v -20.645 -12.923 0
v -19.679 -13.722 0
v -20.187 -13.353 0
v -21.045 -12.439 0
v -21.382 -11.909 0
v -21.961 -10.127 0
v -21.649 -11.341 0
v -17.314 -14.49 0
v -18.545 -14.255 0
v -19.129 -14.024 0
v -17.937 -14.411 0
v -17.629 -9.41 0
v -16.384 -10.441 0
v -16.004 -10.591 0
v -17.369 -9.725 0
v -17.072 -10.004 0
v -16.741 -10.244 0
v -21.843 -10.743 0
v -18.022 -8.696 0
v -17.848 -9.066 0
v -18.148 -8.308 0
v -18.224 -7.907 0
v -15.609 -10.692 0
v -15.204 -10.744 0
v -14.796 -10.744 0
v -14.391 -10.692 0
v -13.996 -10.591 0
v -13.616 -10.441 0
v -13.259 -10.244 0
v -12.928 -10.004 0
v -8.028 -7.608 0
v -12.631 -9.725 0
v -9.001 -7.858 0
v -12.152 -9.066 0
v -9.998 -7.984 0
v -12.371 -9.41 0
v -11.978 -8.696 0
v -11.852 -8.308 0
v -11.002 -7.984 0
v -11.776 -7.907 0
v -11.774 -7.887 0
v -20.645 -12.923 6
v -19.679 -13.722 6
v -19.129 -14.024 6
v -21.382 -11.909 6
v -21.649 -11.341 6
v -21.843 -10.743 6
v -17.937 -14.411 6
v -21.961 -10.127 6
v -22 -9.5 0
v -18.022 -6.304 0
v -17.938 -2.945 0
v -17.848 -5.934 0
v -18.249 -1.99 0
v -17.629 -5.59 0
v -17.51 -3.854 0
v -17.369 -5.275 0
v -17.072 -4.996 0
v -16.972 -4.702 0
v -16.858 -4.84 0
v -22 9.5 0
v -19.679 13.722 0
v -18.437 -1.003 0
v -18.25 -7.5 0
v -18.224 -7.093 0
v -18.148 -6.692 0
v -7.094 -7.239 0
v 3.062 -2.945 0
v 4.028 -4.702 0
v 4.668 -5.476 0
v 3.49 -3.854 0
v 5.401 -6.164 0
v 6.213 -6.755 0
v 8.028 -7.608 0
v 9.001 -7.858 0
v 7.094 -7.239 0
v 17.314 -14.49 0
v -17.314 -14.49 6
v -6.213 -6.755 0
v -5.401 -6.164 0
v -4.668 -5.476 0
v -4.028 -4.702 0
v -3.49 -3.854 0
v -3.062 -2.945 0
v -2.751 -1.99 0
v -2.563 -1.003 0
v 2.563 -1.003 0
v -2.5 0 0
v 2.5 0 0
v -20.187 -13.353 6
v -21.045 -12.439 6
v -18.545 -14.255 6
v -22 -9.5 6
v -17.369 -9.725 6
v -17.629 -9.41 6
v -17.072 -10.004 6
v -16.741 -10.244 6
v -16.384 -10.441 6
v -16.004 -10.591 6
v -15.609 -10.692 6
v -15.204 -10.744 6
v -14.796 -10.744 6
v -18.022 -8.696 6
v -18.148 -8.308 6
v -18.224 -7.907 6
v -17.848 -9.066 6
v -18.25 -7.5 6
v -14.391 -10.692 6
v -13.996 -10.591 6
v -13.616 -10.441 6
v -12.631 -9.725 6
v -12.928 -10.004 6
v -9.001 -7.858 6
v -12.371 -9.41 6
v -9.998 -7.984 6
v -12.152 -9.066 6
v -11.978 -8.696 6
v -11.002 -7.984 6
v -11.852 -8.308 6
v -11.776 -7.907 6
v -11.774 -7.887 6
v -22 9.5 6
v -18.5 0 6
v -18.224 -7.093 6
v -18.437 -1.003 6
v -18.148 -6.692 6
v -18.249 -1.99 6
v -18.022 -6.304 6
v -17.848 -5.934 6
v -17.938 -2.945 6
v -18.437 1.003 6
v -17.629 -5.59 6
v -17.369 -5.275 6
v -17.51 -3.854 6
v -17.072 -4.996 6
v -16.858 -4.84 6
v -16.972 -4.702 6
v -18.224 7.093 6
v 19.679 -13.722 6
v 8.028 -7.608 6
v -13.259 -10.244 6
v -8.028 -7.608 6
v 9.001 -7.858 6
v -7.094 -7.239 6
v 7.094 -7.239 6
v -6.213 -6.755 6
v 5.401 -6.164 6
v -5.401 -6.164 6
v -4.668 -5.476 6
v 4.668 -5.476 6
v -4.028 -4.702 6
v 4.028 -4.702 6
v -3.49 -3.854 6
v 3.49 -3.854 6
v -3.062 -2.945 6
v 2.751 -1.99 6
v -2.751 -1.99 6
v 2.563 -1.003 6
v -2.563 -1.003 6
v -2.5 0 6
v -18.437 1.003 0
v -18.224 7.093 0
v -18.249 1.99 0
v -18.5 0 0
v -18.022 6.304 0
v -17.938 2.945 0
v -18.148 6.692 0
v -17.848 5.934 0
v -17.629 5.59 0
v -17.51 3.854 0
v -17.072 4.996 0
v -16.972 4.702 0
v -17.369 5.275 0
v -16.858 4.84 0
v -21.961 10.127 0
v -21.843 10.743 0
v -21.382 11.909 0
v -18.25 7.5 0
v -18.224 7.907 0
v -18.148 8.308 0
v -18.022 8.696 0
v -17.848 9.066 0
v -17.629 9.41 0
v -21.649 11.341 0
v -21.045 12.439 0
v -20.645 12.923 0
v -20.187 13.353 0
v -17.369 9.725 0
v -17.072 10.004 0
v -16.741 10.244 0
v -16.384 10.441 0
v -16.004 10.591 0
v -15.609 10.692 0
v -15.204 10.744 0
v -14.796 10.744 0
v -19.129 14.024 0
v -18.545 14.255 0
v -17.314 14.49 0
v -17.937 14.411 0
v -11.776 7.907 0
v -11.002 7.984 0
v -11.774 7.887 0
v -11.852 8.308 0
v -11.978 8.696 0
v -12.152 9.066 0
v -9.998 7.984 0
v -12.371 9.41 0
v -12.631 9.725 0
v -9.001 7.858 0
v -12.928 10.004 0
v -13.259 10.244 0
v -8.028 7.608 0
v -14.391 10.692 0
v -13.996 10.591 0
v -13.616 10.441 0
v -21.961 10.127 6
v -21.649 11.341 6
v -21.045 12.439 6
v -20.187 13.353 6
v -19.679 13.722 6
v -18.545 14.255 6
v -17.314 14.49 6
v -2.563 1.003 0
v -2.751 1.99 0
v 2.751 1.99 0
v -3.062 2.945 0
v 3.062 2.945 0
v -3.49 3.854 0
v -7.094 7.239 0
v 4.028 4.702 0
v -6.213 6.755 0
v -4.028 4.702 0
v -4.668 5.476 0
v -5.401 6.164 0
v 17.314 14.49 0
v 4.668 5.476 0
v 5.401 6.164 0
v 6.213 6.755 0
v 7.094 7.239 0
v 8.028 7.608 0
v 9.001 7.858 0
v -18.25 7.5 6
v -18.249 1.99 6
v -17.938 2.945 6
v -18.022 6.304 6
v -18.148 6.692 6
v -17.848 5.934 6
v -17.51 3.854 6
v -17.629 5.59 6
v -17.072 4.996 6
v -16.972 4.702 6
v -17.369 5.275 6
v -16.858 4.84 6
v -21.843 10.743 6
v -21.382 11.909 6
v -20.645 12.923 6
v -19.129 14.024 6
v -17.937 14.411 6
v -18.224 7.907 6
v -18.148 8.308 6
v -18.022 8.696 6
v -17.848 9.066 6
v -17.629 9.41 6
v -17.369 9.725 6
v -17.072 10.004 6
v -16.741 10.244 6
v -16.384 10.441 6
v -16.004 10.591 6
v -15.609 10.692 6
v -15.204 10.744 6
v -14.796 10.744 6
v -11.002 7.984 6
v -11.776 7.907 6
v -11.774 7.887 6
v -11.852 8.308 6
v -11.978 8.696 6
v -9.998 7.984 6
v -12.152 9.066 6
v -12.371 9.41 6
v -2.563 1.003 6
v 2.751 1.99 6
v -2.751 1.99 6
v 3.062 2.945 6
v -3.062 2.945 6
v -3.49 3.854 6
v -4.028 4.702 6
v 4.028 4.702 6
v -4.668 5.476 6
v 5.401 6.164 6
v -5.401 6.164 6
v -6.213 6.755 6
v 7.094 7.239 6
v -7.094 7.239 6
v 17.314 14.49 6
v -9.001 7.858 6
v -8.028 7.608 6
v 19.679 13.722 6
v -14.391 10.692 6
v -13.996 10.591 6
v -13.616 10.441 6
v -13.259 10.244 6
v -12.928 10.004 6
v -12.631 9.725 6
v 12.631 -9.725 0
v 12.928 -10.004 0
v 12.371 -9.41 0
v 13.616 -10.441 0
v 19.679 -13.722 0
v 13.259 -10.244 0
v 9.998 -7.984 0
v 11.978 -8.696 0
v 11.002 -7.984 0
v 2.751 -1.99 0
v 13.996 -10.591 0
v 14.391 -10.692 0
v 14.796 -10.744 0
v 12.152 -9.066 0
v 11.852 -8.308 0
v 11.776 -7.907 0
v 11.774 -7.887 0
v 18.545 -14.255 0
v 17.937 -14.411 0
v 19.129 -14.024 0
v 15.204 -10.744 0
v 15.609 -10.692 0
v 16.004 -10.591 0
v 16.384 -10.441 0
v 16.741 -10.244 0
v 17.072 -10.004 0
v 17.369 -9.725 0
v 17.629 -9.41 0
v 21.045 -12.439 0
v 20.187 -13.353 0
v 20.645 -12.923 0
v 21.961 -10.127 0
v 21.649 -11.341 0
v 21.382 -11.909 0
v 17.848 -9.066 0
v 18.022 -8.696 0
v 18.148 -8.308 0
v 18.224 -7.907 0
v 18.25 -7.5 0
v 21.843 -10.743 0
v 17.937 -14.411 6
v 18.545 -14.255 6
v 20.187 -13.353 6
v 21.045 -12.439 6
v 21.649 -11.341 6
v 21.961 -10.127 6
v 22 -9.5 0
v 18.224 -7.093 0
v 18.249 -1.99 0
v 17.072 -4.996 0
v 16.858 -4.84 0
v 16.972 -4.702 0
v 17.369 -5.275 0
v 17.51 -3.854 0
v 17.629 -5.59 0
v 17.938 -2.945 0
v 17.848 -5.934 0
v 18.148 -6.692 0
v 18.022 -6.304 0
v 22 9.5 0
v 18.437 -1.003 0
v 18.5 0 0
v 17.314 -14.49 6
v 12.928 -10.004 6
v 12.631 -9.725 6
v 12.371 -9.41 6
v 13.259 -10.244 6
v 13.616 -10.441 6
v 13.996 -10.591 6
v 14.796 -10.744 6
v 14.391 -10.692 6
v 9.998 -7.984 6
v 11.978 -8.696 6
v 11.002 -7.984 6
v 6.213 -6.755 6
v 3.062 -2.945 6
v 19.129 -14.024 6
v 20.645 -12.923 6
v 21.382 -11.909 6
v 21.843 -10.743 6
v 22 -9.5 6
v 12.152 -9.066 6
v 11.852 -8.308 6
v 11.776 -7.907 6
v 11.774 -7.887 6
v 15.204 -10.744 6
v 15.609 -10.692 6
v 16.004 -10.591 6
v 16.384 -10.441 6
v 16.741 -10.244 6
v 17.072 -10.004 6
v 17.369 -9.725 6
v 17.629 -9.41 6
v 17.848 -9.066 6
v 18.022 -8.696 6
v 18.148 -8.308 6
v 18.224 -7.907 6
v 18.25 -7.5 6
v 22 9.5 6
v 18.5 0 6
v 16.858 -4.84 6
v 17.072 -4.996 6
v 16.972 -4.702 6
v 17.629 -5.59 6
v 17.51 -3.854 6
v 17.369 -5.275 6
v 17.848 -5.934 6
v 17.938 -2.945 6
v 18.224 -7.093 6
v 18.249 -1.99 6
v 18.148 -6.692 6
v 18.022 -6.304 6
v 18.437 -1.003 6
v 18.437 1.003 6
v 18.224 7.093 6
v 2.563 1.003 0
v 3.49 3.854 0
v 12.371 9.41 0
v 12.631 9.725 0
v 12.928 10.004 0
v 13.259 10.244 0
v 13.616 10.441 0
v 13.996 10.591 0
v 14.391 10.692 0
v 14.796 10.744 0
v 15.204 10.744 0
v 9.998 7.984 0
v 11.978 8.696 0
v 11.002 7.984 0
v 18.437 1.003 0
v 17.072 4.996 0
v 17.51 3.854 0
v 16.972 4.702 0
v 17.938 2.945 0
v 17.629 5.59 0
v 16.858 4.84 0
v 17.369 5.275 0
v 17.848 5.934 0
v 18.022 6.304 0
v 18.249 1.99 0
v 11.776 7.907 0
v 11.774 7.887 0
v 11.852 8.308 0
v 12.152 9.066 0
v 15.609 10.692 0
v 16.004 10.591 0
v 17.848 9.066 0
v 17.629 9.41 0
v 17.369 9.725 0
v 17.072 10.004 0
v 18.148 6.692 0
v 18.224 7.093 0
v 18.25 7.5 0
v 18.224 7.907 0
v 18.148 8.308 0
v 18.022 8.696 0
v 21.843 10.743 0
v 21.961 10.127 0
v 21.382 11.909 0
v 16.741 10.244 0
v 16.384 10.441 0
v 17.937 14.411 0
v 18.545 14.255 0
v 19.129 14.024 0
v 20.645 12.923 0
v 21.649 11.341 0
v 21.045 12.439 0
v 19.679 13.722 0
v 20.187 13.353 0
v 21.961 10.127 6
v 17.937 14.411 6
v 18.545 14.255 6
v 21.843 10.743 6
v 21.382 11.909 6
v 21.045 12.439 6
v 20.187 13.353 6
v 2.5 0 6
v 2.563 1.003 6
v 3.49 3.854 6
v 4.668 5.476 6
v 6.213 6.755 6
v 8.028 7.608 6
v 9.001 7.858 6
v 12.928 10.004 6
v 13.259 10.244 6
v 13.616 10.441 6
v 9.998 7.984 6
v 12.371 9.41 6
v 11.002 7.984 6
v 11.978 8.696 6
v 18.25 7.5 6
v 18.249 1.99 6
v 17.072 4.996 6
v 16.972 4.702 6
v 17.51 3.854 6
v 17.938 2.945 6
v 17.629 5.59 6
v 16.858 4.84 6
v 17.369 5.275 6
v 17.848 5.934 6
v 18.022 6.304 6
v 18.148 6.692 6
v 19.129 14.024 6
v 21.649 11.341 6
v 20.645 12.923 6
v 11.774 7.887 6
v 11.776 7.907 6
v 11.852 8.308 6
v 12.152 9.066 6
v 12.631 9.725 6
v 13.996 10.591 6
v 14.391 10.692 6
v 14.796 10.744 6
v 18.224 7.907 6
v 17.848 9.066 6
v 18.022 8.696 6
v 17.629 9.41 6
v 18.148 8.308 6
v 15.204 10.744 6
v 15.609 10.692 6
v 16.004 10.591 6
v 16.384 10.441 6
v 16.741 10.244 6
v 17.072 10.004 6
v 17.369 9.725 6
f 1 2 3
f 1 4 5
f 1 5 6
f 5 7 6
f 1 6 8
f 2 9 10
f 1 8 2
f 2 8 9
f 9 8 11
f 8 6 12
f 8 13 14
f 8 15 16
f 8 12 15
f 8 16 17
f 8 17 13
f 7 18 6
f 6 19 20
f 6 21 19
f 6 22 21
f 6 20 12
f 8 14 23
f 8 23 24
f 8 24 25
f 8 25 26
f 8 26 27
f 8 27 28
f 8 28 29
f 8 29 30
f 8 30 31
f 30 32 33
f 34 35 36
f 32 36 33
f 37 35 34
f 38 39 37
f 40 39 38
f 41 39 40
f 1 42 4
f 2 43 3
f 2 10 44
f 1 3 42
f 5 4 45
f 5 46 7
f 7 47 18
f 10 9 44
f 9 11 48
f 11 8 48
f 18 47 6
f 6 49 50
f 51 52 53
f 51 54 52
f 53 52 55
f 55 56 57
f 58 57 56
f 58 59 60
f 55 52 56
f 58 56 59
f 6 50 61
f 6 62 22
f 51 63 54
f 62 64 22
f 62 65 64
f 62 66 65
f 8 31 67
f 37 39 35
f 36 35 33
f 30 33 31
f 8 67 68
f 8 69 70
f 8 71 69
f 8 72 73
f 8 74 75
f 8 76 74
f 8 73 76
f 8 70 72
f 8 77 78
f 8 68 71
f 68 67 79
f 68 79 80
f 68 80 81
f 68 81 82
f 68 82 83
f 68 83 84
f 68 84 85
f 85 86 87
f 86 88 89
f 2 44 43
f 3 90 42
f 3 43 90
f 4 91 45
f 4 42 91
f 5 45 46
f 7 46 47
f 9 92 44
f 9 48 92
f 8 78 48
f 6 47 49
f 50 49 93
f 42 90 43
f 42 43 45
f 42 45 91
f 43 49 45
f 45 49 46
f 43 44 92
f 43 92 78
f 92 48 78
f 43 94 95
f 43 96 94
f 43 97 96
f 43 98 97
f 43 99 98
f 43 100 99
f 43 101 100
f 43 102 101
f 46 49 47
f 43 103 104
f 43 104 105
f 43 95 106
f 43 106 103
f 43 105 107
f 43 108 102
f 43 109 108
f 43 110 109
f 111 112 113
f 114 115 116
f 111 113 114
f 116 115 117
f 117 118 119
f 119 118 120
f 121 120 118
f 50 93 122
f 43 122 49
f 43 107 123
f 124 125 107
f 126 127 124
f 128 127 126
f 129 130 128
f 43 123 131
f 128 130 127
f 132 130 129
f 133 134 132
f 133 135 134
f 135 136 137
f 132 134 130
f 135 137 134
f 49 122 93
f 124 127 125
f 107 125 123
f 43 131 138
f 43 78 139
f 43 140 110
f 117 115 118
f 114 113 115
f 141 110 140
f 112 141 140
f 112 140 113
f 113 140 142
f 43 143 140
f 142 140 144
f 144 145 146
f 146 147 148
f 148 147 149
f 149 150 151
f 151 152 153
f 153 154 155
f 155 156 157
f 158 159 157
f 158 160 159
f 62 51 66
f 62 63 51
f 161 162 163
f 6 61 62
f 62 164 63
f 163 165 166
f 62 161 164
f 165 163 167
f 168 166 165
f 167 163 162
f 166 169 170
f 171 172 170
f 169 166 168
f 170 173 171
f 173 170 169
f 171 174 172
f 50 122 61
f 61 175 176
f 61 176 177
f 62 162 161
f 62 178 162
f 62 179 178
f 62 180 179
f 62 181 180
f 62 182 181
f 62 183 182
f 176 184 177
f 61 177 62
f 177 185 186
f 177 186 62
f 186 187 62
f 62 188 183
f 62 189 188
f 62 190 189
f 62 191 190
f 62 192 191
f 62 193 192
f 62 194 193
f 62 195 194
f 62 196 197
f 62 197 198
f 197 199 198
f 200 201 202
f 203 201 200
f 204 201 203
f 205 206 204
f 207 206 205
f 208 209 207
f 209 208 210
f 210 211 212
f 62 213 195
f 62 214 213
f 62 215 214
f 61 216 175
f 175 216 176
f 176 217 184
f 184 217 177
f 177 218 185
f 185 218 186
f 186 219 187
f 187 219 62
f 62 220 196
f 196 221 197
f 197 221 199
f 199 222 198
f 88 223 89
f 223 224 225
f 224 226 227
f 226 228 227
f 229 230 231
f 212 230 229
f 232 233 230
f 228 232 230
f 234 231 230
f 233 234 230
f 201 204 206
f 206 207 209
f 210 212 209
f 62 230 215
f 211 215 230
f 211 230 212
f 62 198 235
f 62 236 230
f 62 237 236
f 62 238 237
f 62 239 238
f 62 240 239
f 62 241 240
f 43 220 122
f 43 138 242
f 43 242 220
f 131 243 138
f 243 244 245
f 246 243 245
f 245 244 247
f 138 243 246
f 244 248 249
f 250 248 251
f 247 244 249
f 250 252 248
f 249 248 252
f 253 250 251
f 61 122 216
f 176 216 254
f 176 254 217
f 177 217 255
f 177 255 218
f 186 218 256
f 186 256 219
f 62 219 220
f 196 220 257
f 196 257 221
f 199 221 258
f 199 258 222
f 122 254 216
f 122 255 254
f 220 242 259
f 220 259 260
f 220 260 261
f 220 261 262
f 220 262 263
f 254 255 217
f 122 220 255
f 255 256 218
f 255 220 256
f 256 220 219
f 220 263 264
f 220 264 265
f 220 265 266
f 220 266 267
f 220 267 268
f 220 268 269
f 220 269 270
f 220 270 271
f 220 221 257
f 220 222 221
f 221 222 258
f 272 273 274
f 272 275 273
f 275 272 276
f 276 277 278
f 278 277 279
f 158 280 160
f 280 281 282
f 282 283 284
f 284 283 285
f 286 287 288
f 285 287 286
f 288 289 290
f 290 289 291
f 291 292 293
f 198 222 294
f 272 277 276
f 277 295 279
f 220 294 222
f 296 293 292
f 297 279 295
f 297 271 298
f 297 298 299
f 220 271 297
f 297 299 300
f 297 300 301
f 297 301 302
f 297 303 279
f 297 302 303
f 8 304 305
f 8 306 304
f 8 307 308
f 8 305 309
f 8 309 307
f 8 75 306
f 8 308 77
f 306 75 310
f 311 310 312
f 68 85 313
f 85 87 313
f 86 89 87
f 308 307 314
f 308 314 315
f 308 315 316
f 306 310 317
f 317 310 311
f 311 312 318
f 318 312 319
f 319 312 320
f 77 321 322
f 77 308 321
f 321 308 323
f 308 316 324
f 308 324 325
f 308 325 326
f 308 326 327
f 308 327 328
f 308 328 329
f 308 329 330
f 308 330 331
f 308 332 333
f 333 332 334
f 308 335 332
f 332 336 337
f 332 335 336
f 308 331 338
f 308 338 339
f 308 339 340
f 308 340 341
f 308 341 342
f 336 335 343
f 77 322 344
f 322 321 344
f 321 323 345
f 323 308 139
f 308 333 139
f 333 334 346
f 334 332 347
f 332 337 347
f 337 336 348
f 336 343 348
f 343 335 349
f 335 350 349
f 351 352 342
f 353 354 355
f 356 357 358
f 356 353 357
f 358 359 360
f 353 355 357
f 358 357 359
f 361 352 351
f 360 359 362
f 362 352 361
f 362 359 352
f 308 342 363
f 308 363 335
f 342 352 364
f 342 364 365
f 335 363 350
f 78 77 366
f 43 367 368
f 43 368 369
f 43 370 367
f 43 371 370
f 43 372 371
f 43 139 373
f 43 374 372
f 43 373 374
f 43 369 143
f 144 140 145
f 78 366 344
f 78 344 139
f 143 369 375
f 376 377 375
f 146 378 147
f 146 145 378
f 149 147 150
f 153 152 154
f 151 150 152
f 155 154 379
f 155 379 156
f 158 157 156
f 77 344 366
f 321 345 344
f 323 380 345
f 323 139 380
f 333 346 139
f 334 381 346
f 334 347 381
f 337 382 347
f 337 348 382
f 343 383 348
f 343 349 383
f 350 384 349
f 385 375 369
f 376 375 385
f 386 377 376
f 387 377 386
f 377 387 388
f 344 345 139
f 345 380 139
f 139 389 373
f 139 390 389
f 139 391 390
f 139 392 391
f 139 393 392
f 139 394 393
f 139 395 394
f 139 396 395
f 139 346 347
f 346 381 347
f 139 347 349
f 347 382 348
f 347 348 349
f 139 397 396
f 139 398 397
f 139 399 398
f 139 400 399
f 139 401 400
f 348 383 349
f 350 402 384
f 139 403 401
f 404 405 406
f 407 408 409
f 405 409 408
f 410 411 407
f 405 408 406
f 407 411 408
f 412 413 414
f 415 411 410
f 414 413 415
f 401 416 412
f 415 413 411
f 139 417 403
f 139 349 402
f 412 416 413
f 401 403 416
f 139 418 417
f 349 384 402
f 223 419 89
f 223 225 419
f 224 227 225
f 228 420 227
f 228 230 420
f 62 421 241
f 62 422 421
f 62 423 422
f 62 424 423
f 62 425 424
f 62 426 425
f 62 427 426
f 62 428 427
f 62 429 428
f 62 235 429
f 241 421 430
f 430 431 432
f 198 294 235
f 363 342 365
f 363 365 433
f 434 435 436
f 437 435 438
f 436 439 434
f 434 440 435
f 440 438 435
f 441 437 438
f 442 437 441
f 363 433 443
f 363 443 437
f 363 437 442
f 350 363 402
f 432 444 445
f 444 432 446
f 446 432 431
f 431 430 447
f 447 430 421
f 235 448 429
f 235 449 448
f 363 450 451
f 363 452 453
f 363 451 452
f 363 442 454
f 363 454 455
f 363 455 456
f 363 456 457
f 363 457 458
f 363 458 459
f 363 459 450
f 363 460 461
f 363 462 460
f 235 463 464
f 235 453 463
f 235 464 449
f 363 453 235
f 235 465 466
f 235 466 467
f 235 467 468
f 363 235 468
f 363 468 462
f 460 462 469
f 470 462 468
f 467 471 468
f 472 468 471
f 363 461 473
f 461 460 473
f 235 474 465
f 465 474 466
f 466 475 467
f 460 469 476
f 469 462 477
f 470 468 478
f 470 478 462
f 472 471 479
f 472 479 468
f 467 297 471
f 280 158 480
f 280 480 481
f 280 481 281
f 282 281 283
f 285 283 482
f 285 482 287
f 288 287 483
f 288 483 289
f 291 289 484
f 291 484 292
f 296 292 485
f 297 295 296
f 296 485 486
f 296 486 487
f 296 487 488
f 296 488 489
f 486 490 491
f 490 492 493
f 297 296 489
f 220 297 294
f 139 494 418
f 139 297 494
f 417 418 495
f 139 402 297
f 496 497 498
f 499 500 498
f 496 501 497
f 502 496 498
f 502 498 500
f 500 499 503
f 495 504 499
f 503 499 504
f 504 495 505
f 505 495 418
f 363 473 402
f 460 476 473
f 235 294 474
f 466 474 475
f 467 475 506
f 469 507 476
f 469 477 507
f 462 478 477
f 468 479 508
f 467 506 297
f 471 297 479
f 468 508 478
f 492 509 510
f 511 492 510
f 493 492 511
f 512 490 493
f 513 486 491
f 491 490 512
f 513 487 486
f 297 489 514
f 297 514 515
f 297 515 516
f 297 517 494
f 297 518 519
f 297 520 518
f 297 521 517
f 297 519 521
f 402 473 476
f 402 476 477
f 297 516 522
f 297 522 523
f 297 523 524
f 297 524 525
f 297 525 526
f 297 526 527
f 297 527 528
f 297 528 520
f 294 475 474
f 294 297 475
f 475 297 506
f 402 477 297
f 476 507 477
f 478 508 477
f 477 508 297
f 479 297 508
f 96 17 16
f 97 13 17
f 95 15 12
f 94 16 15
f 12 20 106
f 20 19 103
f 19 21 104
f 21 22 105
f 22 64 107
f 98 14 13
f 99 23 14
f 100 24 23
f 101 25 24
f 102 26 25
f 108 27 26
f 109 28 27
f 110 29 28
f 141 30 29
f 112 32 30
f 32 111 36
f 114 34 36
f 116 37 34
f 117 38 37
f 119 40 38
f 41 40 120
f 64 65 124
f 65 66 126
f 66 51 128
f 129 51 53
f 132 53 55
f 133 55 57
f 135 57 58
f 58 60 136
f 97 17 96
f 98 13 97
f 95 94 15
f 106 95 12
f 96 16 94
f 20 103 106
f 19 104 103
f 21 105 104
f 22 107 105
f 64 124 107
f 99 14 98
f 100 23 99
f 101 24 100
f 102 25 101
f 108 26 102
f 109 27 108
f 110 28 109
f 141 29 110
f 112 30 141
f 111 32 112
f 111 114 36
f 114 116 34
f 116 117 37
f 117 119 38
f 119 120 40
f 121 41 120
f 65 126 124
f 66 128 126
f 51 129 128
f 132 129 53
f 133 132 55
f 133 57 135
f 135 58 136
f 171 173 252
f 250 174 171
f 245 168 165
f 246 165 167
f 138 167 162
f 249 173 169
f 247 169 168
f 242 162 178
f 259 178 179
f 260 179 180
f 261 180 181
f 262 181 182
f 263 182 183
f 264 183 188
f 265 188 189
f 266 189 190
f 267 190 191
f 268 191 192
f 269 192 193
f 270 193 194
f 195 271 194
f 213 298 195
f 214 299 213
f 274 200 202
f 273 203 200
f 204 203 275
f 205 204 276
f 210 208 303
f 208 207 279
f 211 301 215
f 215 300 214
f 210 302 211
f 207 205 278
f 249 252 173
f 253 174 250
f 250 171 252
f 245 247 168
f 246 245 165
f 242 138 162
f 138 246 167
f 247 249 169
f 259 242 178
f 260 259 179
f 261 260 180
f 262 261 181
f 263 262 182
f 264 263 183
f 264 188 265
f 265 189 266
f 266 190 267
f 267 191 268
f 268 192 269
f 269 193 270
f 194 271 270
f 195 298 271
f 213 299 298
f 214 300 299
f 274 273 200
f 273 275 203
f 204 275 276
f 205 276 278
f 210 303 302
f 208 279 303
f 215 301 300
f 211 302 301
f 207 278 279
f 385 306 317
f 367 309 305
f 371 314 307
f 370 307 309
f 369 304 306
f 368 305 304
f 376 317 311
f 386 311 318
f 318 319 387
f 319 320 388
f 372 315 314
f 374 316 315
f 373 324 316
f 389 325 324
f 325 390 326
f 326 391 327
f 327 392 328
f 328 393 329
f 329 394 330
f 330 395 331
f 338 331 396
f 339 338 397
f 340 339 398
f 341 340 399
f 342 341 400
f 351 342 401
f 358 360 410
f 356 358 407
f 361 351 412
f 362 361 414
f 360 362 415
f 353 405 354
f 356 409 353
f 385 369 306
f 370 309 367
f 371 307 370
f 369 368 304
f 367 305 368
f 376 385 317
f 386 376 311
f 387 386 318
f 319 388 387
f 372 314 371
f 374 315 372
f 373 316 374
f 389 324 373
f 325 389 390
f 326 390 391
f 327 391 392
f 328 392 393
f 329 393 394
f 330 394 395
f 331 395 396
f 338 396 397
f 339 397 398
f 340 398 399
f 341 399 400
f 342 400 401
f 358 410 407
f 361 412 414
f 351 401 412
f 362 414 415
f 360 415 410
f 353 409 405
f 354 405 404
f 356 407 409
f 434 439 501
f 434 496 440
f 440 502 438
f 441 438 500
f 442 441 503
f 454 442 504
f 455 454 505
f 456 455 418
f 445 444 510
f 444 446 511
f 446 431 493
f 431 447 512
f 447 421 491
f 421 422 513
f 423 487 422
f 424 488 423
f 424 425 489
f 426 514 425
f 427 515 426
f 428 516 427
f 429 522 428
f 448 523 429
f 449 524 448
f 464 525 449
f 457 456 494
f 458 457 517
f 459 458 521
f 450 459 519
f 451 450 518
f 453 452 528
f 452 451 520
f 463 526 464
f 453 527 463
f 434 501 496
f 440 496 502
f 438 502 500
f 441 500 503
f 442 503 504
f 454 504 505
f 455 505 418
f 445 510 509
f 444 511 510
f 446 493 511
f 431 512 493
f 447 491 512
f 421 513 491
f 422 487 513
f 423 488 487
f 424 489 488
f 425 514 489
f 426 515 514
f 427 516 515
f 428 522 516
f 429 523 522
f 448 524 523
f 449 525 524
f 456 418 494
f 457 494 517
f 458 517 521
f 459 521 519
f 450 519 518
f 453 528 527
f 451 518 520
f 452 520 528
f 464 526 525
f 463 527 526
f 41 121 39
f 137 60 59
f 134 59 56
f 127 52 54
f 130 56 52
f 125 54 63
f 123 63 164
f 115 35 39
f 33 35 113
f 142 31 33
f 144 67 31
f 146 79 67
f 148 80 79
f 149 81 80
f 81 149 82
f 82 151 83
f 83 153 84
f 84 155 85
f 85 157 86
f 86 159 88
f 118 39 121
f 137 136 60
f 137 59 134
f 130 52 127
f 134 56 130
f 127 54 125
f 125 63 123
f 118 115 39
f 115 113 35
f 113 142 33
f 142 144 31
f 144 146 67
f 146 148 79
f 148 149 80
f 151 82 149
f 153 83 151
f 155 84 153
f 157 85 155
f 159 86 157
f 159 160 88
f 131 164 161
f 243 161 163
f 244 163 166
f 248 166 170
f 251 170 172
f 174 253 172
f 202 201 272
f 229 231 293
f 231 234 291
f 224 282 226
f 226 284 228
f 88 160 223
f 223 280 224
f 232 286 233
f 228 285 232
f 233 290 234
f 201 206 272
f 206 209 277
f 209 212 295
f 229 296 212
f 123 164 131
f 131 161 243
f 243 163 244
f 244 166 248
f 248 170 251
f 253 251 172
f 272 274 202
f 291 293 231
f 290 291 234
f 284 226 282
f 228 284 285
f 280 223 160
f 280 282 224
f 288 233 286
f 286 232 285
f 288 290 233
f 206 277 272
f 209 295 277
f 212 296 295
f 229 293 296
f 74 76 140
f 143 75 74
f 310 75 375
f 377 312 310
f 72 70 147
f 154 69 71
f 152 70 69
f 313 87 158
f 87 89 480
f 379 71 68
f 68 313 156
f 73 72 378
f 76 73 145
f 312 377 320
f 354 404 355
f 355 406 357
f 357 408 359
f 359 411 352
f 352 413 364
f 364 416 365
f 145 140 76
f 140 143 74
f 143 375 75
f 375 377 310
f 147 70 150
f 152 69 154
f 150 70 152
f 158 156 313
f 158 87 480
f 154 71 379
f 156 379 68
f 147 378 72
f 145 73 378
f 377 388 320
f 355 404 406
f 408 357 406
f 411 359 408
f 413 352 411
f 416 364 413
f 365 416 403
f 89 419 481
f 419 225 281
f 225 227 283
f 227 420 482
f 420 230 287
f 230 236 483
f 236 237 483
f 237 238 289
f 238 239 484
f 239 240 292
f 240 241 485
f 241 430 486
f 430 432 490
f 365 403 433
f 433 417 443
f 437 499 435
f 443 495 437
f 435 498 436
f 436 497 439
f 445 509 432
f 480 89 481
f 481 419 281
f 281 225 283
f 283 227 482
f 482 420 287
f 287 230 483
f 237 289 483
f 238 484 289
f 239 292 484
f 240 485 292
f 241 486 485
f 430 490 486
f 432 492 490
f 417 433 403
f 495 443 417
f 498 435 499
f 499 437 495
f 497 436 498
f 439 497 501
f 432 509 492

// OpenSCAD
$fn = 50;

difference() {
	union() {
		hull() {
			translate(v = [-17.0, 9.5, 0]) {
				cylinder(h = 6, r = 5);
			}
			translate(v = [17.0, 9.5, 0]) {
				cylinder(h = 6, r = 5);
			}
			translate(v = [-17.0, -9.5, 0]) {
				cylinder(h = 6, r = 5);
			}
			translate(v = [17.0, -9.5, 0]) {
				cylinder(h = 6, r = 5);
			}
		}
	}
	union() {
		translate(v = [-15.0, -7.5, -100.0]) {
			cylinder(h = 200, r = 3.25);
		}
		translate(v = [-15.0, 7.5, -100.0]) {
			cylinder(h = 200, r = 3.25);
		}
		translate(v = [15.0, -7.5, -100.0]) {
			cylinder(h = 200, r = 3.25);
		}
		translate(v = [15.0, 7.5, -100.0]) {
			cylinder(h = 200, r = 3.25);
		}
		translate(v = [-15.0, -7.5, -100.0]) {
			cylinder(h = 200, r = 1.8);
		}
		translate(v = [-15.0, 7.5, -100.0]) {
			cylinder(h = 200, r = 1.8);
		}
		translate(v = [15.0, -7.5, -100.0]) {
			cylinder(h = 200, r = 1.8);
		}
		translate(v = [15.0, 7.5, -100.0]) {
			cylinder(h = 200, r = 1.8);
		}
		translate(v = [-10.5, 0, 0.0]) {
			cylinder(h = 6, r = 8.0);
		}
		translate(v = [10.5, 0, 0.0]) {
			cylinder(h = 6, r = 8.0);
		}
	}
}
